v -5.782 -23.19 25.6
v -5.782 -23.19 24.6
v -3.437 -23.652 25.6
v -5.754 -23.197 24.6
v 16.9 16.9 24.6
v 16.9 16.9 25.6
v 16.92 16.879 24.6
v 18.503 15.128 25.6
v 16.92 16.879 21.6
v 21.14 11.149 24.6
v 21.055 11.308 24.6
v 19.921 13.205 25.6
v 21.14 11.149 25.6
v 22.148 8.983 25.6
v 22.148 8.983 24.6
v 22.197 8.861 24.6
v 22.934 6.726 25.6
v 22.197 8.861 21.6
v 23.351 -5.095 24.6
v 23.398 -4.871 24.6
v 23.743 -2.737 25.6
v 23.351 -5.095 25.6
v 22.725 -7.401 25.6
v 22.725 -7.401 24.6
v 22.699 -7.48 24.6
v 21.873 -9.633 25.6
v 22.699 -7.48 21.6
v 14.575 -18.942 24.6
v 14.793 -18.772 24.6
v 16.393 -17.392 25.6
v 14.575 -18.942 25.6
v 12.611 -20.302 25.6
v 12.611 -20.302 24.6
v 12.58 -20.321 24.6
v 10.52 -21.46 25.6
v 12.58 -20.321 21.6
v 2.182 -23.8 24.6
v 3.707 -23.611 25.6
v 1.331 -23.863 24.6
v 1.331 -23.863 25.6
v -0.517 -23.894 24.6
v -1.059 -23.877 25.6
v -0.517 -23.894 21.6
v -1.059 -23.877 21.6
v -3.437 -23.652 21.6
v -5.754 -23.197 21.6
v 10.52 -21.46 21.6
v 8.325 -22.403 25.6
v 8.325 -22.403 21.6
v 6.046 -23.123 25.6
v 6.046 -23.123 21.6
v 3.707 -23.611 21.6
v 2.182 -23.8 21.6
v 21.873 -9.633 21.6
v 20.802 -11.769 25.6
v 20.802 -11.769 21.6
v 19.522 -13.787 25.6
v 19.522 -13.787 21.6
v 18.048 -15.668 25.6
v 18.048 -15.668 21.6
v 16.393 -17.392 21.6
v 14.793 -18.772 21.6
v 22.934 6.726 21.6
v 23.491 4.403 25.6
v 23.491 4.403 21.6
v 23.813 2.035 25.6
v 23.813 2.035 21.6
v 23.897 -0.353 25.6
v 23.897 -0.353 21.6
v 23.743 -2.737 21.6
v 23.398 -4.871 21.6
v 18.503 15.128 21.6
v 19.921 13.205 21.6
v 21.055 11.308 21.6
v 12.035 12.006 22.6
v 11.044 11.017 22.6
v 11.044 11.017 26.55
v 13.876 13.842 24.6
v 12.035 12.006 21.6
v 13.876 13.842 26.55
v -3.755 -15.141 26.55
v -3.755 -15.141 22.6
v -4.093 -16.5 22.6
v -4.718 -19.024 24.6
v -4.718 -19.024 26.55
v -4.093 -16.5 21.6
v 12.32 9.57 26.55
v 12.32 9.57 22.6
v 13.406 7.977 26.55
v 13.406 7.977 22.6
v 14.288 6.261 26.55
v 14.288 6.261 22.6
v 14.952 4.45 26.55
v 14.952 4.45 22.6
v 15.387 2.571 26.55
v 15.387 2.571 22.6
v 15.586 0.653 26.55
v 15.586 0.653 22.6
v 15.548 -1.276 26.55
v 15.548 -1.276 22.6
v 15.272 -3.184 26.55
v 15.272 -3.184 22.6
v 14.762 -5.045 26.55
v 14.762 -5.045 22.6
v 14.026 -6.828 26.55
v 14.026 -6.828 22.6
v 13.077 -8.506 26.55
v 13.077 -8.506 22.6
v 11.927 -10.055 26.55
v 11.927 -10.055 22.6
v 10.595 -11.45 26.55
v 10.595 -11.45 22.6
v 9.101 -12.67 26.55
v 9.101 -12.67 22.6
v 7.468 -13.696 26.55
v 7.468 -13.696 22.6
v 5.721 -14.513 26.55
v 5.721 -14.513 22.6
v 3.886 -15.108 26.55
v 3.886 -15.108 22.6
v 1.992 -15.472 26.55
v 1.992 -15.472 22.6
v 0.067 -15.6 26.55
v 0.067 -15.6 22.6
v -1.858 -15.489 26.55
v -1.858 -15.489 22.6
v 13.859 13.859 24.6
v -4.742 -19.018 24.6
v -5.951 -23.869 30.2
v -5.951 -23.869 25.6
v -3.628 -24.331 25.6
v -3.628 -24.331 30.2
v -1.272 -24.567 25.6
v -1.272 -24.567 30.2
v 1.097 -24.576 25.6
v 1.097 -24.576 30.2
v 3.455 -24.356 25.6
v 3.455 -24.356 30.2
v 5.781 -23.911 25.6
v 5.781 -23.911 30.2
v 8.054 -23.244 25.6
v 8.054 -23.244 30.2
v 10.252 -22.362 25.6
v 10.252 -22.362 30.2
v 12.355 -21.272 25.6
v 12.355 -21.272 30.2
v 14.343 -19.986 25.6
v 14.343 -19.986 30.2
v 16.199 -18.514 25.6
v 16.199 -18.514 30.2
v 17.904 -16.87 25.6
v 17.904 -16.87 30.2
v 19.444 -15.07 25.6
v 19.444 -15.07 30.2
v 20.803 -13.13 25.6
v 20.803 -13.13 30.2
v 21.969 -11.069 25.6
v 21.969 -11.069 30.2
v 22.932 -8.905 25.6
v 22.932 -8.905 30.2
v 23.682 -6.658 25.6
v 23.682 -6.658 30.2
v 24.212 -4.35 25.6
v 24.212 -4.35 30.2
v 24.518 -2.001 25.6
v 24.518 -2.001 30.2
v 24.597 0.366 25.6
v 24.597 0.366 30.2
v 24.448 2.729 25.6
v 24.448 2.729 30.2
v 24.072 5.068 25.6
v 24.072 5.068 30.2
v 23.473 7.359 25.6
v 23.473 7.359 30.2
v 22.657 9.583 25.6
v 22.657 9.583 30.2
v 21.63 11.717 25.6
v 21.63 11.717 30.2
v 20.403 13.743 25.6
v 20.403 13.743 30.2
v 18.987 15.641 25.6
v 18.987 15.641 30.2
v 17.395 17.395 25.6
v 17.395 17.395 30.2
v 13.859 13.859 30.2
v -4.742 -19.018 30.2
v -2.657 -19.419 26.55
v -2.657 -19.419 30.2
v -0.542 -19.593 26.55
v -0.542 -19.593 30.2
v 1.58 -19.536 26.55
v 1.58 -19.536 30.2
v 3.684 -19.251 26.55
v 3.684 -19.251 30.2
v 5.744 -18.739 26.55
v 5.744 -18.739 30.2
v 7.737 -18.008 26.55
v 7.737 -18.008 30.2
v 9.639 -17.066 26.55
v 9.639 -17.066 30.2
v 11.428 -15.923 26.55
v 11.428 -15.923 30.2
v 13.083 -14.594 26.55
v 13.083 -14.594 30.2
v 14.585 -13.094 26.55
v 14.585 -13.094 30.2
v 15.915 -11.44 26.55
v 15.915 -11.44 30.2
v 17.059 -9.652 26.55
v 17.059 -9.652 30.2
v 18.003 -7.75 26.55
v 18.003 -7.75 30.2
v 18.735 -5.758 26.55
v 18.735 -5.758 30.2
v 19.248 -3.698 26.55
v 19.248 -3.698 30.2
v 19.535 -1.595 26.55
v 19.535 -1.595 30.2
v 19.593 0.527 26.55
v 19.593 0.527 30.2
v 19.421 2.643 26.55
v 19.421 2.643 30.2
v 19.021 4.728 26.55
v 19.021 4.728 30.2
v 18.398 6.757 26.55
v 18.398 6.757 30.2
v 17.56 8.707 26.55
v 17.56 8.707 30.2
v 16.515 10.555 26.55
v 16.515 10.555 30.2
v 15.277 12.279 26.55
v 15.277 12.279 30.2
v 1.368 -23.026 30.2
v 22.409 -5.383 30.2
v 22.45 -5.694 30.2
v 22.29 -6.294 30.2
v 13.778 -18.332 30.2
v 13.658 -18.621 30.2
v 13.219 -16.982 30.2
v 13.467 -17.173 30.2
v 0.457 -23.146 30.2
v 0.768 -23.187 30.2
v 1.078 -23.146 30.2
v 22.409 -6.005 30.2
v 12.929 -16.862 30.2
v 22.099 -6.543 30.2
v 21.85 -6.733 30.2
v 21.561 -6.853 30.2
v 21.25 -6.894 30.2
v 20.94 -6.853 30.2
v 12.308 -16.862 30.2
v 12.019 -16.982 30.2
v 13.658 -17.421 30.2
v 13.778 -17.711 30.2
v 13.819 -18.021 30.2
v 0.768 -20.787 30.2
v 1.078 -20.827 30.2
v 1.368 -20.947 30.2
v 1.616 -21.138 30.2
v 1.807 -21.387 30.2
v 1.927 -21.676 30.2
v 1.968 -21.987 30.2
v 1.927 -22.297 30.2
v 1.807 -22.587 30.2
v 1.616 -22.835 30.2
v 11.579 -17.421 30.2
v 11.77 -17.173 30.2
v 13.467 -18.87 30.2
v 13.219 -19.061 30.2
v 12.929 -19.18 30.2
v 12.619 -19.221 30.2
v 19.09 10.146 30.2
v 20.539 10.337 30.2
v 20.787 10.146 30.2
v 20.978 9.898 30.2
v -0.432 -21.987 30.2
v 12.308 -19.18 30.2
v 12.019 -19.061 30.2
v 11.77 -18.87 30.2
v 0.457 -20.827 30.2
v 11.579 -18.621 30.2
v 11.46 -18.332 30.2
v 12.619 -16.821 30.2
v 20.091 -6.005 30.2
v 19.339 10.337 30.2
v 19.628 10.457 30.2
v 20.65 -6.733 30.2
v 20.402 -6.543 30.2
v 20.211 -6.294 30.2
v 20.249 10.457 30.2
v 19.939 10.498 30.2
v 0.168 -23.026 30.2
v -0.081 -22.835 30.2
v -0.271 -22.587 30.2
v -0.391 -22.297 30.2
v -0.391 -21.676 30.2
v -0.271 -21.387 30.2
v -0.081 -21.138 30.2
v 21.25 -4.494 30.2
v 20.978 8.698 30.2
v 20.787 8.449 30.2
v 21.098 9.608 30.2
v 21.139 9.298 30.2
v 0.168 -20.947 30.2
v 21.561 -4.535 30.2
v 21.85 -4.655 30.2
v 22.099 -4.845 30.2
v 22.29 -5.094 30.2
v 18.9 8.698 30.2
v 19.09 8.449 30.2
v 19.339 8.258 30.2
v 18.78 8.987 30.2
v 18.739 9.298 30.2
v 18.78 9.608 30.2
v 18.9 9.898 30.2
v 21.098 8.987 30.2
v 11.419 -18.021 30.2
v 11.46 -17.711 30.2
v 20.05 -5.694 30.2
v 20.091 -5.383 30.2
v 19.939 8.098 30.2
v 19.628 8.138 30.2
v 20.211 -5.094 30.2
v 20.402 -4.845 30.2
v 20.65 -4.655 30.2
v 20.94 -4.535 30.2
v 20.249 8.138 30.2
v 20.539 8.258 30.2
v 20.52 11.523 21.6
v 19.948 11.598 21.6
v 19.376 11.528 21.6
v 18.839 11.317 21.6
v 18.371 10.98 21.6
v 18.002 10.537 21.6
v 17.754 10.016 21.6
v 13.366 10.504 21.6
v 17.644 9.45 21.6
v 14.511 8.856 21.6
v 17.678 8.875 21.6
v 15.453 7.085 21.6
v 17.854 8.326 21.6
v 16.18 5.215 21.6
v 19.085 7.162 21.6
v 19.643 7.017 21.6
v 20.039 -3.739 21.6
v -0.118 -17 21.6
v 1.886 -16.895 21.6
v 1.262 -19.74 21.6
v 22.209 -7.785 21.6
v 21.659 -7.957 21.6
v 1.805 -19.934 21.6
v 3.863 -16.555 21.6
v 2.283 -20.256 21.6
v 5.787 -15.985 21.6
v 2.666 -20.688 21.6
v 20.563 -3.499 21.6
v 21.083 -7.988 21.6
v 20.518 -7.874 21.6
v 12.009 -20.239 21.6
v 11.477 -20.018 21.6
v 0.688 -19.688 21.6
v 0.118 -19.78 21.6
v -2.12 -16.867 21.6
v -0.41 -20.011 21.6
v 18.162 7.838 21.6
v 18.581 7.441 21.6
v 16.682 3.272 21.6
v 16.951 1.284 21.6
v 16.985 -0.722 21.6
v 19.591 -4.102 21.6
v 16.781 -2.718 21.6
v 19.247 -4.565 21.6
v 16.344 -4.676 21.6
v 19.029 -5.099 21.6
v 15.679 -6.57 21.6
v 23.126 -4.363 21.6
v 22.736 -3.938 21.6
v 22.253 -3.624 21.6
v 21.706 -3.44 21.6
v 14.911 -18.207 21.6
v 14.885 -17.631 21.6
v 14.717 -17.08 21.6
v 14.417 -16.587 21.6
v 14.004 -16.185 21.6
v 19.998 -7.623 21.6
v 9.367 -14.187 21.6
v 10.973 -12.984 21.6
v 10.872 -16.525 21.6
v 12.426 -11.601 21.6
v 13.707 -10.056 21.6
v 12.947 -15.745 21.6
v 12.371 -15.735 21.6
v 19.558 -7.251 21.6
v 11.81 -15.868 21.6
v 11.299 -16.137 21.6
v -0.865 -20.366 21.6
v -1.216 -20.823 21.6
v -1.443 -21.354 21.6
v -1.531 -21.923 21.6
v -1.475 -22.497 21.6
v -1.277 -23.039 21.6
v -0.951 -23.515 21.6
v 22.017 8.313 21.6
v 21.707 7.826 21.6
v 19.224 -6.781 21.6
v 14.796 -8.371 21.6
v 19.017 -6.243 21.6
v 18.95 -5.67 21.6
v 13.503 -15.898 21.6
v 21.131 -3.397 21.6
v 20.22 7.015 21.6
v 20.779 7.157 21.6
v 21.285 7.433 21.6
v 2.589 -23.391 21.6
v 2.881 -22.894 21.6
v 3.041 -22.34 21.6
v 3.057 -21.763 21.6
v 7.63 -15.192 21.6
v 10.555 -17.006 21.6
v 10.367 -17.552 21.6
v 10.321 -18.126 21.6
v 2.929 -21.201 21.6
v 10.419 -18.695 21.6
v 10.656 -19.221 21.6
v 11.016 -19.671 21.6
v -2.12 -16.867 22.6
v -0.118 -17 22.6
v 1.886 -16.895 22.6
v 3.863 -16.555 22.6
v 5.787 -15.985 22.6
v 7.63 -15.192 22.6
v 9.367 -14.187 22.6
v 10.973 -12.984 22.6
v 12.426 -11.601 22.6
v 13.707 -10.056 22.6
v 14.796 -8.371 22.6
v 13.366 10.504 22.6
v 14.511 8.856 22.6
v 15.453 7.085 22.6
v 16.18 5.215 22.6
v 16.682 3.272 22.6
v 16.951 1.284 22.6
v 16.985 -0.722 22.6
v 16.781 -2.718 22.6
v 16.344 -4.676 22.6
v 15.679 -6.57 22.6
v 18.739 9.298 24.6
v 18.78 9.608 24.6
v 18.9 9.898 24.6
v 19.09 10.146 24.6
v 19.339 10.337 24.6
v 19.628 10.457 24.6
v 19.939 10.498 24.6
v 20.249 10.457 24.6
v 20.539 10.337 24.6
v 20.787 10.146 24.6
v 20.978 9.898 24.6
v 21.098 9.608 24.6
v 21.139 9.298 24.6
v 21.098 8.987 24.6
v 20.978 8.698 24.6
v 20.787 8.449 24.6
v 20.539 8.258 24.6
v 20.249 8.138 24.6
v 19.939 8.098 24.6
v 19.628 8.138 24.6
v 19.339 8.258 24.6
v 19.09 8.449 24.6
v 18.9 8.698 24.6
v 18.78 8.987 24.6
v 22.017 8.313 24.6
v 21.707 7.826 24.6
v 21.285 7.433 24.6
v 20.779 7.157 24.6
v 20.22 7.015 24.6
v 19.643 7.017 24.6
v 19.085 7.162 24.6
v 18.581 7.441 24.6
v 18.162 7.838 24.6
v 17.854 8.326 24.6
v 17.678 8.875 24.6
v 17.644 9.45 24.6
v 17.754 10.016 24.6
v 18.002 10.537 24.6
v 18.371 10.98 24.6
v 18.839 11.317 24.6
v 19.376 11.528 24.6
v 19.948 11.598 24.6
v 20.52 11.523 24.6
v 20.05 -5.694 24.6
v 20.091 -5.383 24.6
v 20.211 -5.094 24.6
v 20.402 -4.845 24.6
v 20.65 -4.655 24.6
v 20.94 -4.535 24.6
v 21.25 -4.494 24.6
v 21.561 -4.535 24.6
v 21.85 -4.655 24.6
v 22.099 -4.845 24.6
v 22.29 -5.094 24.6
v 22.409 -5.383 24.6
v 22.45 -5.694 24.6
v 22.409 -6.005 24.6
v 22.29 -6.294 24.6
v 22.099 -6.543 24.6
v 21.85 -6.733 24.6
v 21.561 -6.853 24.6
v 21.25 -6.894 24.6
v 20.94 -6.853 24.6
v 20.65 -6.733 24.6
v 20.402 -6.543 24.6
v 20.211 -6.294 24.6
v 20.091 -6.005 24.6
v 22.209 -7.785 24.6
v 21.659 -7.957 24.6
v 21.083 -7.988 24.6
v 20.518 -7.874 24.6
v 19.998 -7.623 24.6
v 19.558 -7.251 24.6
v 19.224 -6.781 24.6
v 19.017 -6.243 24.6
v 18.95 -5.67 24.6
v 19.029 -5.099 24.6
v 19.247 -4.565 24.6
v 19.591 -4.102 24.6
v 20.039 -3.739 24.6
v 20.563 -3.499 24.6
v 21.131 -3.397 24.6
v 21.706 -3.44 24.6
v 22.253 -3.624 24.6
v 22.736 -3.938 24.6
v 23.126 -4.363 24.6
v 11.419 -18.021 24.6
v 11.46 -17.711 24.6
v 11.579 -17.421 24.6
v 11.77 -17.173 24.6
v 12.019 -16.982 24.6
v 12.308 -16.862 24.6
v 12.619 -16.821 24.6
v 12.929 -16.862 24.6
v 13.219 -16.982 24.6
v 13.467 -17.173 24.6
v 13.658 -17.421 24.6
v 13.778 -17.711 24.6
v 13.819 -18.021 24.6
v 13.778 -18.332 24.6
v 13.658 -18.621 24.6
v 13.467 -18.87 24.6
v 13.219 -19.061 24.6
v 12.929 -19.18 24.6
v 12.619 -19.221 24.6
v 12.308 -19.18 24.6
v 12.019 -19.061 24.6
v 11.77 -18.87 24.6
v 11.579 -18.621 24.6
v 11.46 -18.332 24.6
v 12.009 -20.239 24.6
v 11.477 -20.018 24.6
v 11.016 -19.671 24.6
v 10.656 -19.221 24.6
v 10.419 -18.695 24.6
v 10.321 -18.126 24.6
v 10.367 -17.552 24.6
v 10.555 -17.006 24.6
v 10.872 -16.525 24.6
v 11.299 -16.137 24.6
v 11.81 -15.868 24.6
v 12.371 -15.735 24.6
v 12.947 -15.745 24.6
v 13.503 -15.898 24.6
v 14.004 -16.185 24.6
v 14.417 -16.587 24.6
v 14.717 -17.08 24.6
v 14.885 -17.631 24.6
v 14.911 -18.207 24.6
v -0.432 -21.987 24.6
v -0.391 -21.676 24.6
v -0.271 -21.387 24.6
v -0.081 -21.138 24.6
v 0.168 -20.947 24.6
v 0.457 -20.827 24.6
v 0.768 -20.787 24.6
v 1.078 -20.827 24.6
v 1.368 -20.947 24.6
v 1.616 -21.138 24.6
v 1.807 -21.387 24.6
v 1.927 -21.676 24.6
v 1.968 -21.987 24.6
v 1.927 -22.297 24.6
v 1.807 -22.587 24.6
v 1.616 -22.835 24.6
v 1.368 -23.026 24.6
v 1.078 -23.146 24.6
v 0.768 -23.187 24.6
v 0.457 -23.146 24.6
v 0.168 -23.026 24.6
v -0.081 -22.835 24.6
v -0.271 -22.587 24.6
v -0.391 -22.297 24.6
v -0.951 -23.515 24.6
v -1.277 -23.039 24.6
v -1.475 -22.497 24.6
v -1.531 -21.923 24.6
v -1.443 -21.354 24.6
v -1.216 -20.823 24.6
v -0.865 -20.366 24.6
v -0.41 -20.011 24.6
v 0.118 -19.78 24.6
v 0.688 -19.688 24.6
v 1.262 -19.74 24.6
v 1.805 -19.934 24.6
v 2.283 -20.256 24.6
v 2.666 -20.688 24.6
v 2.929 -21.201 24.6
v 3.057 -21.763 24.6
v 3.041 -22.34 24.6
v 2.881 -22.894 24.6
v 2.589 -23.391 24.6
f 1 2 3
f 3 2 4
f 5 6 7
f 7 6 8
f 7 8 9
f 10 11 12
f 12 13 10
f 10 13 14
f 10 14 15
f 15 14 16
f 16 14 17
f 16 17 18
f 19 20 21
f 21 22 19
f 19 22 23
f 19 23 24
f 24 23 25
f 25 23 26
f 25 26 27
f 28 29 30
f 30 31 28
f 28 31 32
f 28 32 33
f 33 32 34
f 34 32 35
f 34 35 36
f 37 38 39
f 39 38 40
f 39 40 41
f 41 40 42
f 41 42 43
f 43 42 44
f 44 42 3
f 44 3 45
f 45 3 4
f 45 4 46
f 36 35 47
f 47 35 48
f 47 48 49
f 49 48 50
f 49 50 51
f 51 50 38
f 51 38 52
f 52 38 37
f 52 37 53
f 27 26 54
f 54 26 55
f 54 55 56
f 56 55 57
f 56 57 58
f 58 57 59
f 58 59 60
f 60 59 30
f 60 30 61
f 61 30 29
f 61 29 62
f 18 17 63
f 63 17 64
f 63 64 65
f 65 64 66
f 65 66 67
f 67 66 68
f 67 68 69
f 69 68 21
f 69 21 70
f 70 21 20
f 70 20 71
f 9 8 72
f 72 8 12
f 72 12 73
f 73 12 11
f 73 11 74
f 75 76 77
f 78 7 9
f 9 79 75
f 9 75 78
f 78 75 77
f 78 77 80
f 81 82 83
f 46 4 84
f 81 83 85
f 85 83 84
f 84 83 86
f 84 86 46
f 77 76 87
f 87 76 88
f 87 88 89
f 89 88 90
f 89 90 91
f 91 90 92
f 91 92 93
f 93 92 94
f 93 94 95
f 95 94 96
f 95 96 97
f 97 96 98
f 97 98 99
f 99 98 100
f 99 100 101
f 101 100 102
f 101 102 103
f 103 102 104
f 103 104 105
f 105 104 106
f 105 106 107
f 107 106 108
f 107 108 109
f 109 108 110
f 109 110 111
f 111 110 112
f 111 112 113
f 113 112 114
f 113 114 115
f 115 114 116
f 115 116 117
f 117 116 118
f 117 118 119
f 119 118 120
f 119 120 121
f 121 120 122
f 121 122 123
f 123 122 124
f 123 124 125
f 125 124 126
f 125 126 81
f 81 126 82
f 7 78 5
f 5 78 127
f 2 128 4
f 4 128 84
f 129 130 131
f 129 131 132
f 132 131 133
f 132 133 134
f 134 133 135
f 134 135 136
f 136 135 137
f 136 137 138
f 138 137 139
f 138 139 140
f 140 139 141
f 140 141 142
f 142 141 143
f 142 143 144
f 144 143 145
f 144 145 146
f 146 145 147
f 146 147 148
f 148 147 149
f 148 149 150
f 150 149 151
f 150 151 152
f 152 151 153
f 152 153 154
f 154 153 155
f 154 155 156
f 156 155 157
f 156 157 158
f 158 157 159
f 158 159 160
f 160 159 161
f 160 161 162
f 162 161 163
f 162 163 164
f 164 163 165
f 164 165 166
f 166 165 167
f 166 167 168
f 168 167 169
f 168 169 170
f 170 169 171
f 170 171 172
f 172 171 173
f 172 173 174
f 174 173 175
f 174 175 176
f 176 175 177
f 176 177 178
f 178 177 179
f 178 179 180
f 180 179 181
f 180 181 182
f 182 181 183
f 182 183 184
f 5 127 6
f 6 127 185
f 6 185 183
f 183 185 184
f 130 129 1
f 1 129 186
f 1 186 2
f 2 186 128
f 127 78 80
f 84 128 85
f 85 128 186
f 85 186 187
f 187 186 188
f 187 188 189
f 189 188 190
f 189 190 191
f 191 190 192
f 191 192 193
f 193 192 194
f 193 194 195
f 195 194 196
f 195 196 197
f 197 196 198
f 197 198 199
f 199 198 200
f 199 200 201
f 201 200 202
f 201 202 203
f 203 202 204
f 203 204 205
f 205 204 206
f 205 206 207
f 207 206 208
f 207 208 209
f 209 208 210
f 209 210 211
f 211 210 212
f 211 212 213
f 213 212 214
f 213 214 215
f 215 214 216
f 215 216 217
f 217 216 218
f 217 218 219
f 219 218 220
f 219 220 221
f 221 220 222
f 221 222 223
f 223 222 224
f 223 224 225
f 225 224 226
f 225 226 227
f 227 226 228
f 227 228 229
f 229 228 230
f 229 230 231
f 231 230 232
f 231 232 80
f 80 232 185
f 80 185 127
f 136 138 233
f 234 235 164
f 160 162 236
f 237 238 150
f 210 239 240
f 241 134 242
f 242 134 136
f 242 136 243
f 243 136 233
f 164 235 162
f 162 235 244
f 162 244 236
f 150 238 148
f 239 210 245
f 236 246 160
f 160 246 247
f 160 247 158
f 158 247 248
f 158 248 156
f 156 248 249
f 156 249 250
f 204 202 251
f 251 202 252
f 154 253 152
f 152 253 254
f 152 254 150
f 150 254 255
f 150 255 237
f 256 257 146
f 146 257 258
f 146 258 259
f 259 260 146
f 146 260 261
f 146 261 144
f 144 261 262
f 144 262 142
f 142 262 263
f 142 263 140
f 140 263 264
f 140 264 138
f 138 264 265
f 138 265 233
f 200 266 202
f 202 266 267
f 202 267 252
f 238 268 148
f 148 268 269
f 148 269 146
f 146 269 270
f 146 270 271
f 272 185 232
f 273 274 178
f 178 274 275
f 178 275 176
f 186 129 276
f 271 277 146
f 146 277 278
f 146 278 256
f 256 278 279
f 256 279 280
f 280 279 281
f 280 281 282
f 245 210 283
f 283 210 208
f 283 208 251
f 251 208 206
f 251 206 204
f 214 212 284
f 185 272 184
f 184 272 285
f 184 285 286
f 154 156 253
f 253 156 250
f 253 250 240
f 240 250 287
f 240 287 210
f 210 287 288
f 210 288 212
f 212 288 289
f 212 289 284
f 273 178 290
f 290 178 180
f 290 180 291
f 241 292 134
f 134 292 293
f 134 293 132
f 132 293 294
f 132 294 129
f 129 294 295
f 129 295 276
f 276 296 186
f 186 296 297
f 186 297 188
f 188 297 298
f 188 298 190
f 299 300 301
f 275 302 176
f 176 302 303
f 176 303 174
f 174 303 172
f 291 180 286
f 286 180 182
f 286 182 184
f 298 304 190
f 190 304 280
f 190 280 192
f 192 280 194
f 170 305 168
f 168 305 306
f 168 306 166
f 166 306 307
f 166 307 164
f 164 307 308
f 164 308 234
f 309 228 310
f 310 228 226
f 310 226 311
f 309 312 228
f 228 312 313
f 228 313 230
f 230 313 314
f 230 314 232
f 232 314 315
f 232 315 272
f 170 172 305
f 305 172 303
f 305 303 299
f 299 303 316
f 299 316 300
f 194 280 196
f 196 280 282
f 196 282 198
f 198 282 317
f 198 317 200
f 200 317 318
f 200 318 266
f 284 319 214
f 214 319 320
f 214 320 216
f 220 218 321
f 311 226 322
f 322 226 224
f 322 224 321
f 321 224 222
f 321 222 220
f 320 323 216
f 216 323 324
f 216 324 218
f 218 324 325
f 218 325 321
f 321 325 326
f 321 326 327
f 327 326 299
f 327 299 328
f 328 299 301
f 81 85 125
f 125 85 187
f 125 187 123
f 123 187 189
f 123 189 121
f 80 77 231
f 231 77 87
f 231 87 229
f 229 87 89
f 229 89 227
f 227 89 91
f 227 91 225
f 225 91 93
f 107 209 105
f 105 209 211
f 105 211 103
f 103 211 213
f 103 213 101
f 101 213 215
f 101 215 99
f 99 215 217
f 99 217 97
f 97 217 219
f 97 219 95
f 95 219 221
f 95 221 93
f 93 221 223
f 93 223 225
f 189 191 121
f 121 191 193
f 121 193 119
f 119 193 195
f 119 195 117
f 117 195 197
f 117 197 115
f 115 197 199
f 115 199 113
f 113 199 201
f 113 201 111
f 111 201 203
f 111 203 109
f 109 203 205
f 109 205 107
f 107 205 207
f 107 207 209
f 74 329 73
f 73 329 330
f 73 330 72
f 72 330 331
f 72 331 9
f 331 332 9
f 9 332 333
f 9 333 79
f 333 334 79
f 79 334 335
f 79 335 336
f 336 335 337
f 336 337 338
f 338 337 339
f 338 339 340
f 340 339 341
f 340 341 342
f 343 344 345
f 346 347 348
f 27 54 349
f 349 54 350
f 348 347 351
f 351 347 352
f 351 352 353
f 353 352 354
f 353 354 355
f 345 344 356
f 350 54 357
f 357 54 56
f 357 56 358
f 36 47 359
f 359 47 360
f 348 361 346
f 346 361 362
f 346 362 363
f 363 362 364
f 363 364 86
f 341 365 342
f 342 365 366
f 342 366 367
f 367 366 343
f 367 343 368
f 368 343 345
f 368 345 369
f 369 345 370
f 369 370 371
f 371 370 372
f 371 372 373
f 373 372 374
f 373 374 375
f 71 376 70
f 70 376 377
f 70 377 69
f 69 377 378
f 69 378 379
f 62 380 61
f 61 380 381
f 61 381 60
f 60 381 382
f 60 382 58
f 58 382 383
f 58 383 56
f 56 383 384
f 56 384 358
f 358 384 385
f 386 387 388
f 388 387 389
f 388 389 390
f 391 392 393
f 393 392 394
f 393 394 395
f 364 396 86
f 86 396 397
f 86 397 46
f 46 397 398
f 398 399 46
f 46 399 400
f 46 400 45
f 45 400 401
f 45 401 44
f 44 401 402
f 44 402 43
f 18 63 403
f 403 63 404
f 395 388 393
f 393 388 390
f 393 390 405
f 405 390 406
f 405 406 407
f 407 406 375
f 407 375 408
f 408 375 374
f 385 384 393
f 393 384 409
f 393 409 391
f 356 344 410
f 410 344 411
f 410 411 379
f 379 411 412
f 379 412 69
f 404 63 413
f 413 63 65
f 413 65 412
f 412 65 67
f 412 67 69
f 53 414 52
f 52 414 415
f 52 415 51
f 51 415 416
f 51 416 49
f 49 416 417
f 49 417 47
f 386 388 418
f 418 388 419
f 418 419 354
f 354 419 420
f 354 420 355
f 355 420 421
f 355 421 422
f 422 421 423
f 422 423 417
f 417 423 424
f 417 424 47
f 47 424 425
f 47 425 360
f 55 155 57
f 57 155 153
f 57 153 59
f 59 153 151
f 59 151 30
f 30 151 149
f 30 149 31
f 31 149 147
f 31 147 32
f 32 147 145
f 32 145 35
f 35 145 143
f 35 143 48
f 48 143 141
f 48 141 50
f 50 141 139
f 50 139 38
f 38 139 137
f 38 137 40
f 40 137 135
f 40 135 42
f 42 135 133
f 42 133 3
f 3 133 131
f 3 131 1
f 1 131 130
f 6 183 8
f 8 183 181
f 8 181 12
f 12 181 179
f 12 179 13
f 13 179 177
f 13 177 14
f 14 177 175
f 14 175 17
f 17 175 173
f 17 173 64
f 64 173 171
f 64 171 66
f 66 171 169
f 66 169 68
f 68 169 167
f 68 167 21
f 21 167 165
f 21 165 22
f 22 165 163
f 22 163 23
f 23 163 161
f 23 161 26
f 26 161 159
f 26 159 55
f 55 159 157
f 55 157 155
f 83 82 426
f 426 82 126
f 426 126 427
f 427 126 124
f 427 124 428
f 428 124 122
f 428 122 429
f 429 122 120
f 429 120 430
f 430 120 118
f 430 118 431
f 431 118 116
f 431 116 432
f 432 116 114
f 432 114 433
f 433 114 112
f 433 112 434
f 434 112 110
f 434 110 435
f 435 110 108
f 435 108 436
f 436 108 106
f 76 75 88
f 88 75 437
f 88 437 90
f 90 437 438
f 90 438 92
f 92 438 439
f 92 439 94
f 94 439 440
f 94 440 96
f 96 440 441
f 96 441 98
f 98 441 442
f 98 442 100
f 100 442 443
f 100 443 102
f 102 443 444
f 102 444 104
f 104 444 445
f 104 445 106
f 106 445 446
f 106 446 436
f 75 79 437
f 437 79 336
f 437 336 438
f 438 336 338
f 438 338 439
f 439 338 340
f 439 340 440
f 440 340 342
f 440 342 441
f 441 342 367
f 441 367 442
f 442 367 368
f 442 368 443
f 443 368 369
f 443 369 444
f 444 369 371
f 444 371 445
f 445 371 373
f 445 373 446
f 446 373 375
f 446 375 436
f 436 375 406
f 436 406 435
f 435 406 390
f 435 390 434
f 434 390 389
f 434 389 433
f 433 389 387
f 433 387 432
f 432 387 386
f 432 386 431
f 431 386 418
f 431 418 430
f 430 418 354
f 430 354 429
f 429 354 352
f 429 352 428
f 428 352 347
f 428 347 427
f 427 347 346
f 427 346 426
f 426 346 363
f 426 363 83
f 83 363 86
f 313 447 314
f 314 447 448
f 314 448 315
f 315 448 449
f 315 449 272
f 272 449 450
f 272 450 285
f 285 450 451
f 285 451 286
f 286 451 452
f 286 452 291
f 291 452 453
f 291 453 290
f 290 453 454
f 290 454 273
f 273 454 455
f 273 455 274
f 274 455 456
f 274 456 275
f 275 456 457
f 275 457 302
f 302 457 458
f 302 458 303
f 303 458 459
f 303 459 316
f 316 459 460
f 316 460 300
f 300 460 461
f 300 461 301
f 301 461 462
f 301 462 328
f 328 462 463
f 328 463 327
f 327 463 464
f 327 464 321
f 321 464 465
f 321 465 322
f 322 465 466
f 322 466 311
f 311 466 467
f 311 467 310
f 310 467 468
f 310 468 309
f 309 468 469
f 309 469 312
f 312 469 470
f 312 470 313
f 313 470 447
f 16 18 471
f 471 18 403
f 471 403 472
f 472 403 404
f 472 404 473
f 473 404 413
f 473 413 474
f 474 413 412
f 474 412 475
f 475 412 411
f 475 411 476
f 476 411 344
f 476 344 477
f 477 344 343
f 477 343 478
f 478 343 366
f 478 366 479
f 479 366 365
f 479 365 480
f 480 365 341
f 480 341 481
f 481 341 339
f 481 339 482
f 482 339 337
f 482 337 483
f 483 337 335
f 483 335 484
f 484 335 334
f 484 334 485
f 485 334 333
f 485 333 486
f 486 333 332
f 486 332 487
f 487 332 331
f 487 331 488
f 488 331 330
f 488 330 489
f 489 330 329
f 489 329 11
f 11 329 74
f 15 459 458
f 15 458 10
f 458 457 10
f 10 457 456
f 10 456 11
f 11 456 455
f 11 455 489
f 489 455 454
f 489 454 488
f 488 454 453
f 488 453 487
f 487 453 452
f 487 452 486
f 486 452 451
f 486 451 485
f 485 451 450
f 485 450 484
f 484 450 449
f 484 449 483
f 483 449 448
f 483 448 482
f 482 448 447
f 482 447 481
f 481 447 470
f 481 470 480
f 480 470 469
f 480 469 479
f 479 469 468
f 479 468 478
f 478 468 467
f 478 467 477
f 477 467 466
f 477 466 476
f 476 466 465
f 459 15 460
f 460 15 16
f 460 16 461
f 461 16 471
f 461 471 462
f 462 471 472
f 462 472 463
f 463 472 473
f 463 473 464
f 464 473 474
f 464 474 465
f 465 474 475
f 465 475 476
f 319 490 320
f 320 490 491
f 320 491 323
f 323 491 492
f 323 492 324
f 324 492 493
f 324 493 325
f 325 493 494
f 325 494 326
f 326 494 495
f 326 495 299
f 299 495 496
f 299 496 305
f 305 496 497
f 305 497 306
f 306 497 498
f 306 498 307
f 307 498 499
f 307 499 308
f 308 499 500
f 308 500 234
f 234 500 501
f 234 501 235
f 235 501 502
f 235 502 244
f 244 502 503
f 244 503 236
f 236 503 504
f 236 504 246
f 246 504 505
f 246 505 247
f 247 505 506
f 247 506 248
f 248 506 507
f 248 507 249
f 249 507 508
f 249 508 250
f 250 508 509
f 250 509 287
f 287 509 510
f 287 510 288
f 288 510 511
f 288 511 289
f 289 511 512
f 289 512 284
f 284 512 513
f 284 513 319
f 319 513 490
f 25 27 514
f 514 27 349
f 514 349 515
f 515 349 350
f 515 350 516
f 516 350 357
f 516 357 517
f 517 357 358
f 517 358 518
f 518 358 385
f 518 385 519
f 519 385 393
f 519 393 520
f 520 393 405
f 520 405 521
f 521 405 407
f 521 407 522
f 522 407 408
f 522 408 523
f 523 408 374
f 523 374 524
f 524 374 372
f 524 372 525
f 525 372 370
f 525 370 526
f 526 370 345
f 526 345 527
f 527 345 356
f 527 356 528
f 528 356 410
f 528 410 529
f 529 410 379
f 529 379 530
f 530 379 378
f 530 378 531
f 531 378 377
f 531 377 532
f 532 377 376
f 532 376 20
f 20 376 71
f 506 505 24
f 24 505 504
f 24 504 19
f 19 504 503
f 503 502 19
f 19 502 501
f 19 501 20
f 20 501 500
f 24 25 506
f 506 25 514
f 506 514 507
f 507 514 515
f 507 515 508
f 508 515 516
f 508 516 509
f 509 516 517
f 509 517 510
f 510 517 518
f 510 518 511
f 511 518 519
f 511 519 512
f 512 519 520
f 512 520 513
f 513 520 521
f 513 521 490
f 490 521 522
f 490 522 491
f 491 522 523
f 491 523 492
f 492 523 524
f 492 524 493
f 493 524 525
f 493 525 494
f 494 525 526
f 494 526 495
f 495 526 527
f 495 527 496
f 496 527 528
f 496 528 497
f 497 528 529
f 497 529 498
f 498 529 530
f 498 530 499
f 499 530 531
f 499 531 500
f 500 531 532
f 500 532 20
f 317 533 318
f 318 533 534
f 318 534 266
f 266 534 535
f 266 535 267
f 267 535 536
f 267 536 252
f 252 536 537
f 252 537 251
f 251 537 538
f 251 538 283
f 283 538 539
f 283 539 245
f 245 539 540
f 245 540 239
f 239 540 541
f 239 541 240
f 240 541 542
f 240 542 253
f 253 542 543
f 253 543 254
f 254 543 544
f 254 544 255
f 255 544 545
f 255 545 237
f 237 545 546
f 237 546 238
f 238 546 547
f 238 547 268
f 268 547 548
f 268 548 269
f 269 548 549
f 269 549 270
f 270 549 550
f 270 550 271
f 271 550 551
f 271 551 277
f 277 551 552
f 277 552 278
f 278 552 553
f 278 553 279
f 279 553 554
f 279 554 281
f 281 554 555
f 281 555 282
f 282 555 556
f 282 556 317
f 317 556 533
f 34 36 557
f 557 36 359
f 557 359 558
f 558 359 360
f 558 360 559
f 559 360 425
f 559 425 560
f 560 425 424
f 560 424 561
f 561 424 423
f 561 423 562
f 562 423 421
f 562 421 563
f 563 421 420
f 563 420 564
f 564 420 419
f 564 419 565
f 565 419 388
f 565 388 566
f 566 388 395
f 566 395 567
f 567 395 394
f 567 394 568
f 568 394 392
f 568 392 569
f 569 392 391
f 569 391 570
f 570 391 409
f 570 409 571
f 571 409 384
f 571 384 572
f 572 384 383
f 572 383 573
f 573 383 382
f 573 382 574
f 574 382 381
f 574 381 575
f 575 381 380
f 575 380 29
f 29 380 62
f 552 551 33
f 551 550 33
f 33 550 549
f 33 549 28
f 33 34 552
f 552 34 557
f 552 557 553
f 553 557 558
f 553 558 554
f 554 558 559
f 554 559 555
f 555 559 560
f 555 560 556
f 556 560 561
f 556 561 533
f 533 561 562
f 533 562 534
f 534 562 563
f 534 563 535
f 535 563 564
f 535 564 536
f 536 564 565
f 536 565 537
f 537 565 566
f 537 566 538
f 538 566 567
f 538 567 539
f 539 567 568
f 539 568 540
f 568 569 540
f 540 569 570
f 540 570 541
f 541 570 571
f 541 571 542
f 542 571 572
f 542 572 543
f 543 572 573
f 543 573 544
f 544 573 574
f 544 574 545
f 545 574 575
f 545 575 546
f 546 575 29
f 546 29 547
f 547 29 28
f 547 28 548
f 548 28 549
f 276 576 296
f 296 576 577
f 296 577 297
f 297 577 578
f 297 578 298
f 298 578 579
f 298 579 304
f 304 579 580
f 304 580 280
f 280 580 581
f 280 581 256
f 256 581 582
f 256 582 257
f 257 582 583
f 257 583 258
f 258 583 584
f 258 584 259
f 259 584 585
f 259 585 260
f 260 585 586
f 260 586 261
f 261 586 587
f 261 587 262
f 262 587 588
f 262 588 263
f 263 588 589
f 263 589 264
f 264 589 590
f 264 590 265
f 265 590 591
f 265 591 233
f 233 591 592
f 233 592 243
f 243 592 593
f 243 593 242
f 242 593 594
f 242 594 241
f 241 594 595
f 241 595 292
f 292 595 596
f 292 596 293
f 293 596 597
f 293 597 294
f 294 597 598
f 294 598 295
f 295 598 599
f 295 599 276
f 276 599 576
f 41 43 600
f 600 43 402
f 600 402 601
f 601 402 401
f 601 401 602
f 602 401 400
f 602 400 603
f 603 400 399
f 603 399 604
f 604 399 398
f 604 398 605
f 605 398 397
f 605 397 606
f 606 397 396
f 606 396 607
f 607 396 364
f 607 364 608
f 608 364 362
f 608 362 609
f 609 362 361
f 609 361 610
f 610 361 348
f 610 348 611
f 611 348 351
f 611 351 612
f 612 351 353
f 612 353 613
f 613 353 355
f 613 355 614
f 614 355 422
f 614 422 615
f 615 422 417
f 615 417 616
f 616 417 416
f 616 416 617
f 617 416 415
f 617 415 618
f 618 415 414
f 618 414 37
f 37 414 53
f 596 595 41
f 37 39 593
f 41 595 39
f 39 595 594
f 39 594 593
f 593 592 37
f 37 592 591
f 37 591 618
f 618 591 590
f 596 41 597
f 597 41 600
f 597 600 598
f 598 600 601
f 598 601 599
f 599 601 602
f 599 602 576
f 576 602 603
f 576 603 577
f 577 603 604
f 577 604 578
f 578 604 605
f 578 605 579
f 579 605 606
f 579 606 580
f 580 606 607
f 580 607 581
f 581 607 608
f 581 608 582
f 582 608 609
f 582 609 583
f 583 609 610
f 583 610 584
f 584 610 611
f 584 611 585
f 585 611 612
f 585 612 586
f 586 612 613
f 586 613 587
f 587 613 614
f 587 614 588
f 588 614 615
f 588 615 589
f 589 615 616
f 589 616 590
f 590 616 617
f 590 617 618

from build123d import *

# Parameters (mm, degrees)
BOSS_1_DEPTH  = 5.6
BOSS_2_DEPTH  = 4.95
CUT_3_DEPTH   = 1.1
CUT_4_DEPTH   = 1.1
S_HOLE5_R     = 1.2
HOLE_5_DEPTH  = 8.8
S_HOLE6_R     = 2.3
HOLE_6_DEPTH  = 3.1
S_HOLE7_R     = 1.2
HOLE_7_DEPTH  = 8.8
S_HOLE8_R     = 2.3
HOLE_8_DEPTH  = 3.1
S_HOLE9_R     = 1.2
HOLE_9_DEPTH  = 8.8
S_HOLE10_R    = 2.3
HOLE_10_DEPTH = 3.1
S_HOLE11_R    = 1.2
HOLE_11_DEPTH = 8.8
S_HOLE12_R    = 2.3
HOLE_12_DEPTH = 3.1


with BuildPart() as part:
    # S_prism1 → Boss_1 (new body)
    with BuildSketch(Plane.XY.offset(24.6)):
        with BuildLine():
            Line((-5.951278632, -23.869274866), (-4.741669154, -19.017796235))
            ThreePointArc((-4.741669154, -19.017796235), (17.05897164, -9.651501778), (13.859292911, 13.859292911))
            Line((13.859292911, 13.859292911), (17.394826817, 17.394826817))
            ThreePointArc((17.394826817, 17.394826817), (21.41075012, -12.113619579), (-5.951278632, -23.869274866))
        make_face()
    extrude(amount=BOSS_1_DEPTH)

    # S_prism2 → Boss_2 (add)
    with BuildSketch(Plane.XY.offset(21.6)):
        with BuildLine():
            Line((-5.753596984, -23.197114513), (-3.755485898, -15.14121282))
            ThreePointArc((-3.755485898, -15.14121282), (13.577548857, -7.681807538), (11.044334296, 11.017380812))
            Line((11.044334296, 11.017380812), (16.920486517, 16.879192399))
            ThreePointArc((16.920486517, 16.879192399), (20.801501133, -11.768923086), (-5.753596984, -23.197114513))
        make_face()
    extrude(amount=BOSS_2_DEPTH)

    # S_pcut3 → Cut_3 (cut)
    with BuildSketch(Plane.XY.offset(24.5)):
        with BuildLine():
            Line((-6.418712319, -23.954960492), (-6.185775178, -23.085627248))
            ThreePointArc((-6.185775178, -23.085627248), (20.801501133, -11.768923086), (16.602335054, 17.192221228))
            Line((16.602335054, 17.192221228), (17.227527587, 17.839627048))
            ThreePointArc((17.227527587, 17.839627048), (21.584821259, -12.212104291), (-6.418712319, -23.954960492))
        make_face()
    extrude(amount=CUT_3_DEPTH, mode=Mode.SUBTRACT)

    # S_pcut4 → Cut_4 (cut)
    with BuildSketch(Plane.XY.offset(21.5)):
        with BuildLine():
            Line((-4.399923767, -16.420739047), (-4.011695199, -14.971850307))
            ThreePointArc((-4.011695199, -14.971850307), (13.490513287, -7.632565182), (10.767204742, 11.149766905))
            Line((10.767204742, 11.149766905), (11.809192298, 12.228776606))
            ThreePointArc((11.809192298, 12.228776606), (14.796046831, -8.371200522), (-4.399923767, -16.420739047))
        make_face()
    extrude(amount=CUT_4_DEPTH, mode=Mode.SUBTRACT)

    # S_hole5 → Hole_5 (cut)
    with BuildSketch(Plane.XY.offset(21.5)):
        with Locations(Location((19.938771315, 9.297601758, 0), (0, 0, 180))):
            Circle(S_HOLE5_R)
    extrude(amount=HOLE_5_DEPTH, mode=Mode.SUBTRACT)

    # S_hole6 → Hole_6 (cut)
    with BuildSketch(Plane.XY.offset(21.5)):
        with Locations((19.938771315, 9.297601758)):
            Circle(S_HOLE6_R)
    extrude(amount=HOLE_6_DEPTH, mode=Mode.SUBTRACT)

    # S_hole7 → Hole_7 (cut)
    with BuildSketch(Plane.XY.offset(21.5)):
        with Locations(Location((21.250368178, -5.694018992, 0), (0, 0, 180))):
            Circle(S_HOLE7_R)
    extrude(amount=HOLE_7_DEPTH, mode=Mode.SUBTRACT)

    # S_hole8 → Hole_8 (cut)
    with BuildSketch(Plane.XY.offset(21.5)):
        with Locations((21.250368178, -5.694018992)):
            Circle(S_HOLE8_R)
    extrude(amount=HOLE_8_DEPTH, mode=Mode.SUBTRACT)

    # S_hole9 → Hole_9 (cut)
    with BuildSketch(Plane.XY.offset(21.5)):
        with Locations(Location((12.6186816, -18.021344974, 0), (0, 0, 180))):
            Circle(S_HOLE9_R)
    extrude(amount=HOLE_9_DEPTH, mode=Mode.SUBTRACT)

    # S_hole10 → Hole_10 (cut)
    with BuildSketch(Plane.XY.offset(21.5)):
        with Locations((12.6186816, -18.021344974)):
            Circle(S_HOLE10_R)
    extrude(amount=HOLE_10_DEPTH, mode=Mode.SUBTRACT)

    # S_hole11 → Hole_11 (cut)
    with BuildSketch(Plane.XY.offset(21.5)):
        with Locations(Location((0.767788927, -21.986598194, 0), (0, 0, 180))):
            Circle(S_HOLE11_R)
    extrude(amount=HOLE_11_DEPTH, mode=Mode.SUBTRACT)

    # S_hole12 → Hole_12 (cut)
    with BuildSketch(Plane.XY.offset(21.5)):
        with Locations((0.767788927, -21.986598194)):
            Circle(S_HOLE12_R)
    extrude(amount=HOLE_12_DEPTH, mode=Mode.SUBTRACT)


solid = part.part
